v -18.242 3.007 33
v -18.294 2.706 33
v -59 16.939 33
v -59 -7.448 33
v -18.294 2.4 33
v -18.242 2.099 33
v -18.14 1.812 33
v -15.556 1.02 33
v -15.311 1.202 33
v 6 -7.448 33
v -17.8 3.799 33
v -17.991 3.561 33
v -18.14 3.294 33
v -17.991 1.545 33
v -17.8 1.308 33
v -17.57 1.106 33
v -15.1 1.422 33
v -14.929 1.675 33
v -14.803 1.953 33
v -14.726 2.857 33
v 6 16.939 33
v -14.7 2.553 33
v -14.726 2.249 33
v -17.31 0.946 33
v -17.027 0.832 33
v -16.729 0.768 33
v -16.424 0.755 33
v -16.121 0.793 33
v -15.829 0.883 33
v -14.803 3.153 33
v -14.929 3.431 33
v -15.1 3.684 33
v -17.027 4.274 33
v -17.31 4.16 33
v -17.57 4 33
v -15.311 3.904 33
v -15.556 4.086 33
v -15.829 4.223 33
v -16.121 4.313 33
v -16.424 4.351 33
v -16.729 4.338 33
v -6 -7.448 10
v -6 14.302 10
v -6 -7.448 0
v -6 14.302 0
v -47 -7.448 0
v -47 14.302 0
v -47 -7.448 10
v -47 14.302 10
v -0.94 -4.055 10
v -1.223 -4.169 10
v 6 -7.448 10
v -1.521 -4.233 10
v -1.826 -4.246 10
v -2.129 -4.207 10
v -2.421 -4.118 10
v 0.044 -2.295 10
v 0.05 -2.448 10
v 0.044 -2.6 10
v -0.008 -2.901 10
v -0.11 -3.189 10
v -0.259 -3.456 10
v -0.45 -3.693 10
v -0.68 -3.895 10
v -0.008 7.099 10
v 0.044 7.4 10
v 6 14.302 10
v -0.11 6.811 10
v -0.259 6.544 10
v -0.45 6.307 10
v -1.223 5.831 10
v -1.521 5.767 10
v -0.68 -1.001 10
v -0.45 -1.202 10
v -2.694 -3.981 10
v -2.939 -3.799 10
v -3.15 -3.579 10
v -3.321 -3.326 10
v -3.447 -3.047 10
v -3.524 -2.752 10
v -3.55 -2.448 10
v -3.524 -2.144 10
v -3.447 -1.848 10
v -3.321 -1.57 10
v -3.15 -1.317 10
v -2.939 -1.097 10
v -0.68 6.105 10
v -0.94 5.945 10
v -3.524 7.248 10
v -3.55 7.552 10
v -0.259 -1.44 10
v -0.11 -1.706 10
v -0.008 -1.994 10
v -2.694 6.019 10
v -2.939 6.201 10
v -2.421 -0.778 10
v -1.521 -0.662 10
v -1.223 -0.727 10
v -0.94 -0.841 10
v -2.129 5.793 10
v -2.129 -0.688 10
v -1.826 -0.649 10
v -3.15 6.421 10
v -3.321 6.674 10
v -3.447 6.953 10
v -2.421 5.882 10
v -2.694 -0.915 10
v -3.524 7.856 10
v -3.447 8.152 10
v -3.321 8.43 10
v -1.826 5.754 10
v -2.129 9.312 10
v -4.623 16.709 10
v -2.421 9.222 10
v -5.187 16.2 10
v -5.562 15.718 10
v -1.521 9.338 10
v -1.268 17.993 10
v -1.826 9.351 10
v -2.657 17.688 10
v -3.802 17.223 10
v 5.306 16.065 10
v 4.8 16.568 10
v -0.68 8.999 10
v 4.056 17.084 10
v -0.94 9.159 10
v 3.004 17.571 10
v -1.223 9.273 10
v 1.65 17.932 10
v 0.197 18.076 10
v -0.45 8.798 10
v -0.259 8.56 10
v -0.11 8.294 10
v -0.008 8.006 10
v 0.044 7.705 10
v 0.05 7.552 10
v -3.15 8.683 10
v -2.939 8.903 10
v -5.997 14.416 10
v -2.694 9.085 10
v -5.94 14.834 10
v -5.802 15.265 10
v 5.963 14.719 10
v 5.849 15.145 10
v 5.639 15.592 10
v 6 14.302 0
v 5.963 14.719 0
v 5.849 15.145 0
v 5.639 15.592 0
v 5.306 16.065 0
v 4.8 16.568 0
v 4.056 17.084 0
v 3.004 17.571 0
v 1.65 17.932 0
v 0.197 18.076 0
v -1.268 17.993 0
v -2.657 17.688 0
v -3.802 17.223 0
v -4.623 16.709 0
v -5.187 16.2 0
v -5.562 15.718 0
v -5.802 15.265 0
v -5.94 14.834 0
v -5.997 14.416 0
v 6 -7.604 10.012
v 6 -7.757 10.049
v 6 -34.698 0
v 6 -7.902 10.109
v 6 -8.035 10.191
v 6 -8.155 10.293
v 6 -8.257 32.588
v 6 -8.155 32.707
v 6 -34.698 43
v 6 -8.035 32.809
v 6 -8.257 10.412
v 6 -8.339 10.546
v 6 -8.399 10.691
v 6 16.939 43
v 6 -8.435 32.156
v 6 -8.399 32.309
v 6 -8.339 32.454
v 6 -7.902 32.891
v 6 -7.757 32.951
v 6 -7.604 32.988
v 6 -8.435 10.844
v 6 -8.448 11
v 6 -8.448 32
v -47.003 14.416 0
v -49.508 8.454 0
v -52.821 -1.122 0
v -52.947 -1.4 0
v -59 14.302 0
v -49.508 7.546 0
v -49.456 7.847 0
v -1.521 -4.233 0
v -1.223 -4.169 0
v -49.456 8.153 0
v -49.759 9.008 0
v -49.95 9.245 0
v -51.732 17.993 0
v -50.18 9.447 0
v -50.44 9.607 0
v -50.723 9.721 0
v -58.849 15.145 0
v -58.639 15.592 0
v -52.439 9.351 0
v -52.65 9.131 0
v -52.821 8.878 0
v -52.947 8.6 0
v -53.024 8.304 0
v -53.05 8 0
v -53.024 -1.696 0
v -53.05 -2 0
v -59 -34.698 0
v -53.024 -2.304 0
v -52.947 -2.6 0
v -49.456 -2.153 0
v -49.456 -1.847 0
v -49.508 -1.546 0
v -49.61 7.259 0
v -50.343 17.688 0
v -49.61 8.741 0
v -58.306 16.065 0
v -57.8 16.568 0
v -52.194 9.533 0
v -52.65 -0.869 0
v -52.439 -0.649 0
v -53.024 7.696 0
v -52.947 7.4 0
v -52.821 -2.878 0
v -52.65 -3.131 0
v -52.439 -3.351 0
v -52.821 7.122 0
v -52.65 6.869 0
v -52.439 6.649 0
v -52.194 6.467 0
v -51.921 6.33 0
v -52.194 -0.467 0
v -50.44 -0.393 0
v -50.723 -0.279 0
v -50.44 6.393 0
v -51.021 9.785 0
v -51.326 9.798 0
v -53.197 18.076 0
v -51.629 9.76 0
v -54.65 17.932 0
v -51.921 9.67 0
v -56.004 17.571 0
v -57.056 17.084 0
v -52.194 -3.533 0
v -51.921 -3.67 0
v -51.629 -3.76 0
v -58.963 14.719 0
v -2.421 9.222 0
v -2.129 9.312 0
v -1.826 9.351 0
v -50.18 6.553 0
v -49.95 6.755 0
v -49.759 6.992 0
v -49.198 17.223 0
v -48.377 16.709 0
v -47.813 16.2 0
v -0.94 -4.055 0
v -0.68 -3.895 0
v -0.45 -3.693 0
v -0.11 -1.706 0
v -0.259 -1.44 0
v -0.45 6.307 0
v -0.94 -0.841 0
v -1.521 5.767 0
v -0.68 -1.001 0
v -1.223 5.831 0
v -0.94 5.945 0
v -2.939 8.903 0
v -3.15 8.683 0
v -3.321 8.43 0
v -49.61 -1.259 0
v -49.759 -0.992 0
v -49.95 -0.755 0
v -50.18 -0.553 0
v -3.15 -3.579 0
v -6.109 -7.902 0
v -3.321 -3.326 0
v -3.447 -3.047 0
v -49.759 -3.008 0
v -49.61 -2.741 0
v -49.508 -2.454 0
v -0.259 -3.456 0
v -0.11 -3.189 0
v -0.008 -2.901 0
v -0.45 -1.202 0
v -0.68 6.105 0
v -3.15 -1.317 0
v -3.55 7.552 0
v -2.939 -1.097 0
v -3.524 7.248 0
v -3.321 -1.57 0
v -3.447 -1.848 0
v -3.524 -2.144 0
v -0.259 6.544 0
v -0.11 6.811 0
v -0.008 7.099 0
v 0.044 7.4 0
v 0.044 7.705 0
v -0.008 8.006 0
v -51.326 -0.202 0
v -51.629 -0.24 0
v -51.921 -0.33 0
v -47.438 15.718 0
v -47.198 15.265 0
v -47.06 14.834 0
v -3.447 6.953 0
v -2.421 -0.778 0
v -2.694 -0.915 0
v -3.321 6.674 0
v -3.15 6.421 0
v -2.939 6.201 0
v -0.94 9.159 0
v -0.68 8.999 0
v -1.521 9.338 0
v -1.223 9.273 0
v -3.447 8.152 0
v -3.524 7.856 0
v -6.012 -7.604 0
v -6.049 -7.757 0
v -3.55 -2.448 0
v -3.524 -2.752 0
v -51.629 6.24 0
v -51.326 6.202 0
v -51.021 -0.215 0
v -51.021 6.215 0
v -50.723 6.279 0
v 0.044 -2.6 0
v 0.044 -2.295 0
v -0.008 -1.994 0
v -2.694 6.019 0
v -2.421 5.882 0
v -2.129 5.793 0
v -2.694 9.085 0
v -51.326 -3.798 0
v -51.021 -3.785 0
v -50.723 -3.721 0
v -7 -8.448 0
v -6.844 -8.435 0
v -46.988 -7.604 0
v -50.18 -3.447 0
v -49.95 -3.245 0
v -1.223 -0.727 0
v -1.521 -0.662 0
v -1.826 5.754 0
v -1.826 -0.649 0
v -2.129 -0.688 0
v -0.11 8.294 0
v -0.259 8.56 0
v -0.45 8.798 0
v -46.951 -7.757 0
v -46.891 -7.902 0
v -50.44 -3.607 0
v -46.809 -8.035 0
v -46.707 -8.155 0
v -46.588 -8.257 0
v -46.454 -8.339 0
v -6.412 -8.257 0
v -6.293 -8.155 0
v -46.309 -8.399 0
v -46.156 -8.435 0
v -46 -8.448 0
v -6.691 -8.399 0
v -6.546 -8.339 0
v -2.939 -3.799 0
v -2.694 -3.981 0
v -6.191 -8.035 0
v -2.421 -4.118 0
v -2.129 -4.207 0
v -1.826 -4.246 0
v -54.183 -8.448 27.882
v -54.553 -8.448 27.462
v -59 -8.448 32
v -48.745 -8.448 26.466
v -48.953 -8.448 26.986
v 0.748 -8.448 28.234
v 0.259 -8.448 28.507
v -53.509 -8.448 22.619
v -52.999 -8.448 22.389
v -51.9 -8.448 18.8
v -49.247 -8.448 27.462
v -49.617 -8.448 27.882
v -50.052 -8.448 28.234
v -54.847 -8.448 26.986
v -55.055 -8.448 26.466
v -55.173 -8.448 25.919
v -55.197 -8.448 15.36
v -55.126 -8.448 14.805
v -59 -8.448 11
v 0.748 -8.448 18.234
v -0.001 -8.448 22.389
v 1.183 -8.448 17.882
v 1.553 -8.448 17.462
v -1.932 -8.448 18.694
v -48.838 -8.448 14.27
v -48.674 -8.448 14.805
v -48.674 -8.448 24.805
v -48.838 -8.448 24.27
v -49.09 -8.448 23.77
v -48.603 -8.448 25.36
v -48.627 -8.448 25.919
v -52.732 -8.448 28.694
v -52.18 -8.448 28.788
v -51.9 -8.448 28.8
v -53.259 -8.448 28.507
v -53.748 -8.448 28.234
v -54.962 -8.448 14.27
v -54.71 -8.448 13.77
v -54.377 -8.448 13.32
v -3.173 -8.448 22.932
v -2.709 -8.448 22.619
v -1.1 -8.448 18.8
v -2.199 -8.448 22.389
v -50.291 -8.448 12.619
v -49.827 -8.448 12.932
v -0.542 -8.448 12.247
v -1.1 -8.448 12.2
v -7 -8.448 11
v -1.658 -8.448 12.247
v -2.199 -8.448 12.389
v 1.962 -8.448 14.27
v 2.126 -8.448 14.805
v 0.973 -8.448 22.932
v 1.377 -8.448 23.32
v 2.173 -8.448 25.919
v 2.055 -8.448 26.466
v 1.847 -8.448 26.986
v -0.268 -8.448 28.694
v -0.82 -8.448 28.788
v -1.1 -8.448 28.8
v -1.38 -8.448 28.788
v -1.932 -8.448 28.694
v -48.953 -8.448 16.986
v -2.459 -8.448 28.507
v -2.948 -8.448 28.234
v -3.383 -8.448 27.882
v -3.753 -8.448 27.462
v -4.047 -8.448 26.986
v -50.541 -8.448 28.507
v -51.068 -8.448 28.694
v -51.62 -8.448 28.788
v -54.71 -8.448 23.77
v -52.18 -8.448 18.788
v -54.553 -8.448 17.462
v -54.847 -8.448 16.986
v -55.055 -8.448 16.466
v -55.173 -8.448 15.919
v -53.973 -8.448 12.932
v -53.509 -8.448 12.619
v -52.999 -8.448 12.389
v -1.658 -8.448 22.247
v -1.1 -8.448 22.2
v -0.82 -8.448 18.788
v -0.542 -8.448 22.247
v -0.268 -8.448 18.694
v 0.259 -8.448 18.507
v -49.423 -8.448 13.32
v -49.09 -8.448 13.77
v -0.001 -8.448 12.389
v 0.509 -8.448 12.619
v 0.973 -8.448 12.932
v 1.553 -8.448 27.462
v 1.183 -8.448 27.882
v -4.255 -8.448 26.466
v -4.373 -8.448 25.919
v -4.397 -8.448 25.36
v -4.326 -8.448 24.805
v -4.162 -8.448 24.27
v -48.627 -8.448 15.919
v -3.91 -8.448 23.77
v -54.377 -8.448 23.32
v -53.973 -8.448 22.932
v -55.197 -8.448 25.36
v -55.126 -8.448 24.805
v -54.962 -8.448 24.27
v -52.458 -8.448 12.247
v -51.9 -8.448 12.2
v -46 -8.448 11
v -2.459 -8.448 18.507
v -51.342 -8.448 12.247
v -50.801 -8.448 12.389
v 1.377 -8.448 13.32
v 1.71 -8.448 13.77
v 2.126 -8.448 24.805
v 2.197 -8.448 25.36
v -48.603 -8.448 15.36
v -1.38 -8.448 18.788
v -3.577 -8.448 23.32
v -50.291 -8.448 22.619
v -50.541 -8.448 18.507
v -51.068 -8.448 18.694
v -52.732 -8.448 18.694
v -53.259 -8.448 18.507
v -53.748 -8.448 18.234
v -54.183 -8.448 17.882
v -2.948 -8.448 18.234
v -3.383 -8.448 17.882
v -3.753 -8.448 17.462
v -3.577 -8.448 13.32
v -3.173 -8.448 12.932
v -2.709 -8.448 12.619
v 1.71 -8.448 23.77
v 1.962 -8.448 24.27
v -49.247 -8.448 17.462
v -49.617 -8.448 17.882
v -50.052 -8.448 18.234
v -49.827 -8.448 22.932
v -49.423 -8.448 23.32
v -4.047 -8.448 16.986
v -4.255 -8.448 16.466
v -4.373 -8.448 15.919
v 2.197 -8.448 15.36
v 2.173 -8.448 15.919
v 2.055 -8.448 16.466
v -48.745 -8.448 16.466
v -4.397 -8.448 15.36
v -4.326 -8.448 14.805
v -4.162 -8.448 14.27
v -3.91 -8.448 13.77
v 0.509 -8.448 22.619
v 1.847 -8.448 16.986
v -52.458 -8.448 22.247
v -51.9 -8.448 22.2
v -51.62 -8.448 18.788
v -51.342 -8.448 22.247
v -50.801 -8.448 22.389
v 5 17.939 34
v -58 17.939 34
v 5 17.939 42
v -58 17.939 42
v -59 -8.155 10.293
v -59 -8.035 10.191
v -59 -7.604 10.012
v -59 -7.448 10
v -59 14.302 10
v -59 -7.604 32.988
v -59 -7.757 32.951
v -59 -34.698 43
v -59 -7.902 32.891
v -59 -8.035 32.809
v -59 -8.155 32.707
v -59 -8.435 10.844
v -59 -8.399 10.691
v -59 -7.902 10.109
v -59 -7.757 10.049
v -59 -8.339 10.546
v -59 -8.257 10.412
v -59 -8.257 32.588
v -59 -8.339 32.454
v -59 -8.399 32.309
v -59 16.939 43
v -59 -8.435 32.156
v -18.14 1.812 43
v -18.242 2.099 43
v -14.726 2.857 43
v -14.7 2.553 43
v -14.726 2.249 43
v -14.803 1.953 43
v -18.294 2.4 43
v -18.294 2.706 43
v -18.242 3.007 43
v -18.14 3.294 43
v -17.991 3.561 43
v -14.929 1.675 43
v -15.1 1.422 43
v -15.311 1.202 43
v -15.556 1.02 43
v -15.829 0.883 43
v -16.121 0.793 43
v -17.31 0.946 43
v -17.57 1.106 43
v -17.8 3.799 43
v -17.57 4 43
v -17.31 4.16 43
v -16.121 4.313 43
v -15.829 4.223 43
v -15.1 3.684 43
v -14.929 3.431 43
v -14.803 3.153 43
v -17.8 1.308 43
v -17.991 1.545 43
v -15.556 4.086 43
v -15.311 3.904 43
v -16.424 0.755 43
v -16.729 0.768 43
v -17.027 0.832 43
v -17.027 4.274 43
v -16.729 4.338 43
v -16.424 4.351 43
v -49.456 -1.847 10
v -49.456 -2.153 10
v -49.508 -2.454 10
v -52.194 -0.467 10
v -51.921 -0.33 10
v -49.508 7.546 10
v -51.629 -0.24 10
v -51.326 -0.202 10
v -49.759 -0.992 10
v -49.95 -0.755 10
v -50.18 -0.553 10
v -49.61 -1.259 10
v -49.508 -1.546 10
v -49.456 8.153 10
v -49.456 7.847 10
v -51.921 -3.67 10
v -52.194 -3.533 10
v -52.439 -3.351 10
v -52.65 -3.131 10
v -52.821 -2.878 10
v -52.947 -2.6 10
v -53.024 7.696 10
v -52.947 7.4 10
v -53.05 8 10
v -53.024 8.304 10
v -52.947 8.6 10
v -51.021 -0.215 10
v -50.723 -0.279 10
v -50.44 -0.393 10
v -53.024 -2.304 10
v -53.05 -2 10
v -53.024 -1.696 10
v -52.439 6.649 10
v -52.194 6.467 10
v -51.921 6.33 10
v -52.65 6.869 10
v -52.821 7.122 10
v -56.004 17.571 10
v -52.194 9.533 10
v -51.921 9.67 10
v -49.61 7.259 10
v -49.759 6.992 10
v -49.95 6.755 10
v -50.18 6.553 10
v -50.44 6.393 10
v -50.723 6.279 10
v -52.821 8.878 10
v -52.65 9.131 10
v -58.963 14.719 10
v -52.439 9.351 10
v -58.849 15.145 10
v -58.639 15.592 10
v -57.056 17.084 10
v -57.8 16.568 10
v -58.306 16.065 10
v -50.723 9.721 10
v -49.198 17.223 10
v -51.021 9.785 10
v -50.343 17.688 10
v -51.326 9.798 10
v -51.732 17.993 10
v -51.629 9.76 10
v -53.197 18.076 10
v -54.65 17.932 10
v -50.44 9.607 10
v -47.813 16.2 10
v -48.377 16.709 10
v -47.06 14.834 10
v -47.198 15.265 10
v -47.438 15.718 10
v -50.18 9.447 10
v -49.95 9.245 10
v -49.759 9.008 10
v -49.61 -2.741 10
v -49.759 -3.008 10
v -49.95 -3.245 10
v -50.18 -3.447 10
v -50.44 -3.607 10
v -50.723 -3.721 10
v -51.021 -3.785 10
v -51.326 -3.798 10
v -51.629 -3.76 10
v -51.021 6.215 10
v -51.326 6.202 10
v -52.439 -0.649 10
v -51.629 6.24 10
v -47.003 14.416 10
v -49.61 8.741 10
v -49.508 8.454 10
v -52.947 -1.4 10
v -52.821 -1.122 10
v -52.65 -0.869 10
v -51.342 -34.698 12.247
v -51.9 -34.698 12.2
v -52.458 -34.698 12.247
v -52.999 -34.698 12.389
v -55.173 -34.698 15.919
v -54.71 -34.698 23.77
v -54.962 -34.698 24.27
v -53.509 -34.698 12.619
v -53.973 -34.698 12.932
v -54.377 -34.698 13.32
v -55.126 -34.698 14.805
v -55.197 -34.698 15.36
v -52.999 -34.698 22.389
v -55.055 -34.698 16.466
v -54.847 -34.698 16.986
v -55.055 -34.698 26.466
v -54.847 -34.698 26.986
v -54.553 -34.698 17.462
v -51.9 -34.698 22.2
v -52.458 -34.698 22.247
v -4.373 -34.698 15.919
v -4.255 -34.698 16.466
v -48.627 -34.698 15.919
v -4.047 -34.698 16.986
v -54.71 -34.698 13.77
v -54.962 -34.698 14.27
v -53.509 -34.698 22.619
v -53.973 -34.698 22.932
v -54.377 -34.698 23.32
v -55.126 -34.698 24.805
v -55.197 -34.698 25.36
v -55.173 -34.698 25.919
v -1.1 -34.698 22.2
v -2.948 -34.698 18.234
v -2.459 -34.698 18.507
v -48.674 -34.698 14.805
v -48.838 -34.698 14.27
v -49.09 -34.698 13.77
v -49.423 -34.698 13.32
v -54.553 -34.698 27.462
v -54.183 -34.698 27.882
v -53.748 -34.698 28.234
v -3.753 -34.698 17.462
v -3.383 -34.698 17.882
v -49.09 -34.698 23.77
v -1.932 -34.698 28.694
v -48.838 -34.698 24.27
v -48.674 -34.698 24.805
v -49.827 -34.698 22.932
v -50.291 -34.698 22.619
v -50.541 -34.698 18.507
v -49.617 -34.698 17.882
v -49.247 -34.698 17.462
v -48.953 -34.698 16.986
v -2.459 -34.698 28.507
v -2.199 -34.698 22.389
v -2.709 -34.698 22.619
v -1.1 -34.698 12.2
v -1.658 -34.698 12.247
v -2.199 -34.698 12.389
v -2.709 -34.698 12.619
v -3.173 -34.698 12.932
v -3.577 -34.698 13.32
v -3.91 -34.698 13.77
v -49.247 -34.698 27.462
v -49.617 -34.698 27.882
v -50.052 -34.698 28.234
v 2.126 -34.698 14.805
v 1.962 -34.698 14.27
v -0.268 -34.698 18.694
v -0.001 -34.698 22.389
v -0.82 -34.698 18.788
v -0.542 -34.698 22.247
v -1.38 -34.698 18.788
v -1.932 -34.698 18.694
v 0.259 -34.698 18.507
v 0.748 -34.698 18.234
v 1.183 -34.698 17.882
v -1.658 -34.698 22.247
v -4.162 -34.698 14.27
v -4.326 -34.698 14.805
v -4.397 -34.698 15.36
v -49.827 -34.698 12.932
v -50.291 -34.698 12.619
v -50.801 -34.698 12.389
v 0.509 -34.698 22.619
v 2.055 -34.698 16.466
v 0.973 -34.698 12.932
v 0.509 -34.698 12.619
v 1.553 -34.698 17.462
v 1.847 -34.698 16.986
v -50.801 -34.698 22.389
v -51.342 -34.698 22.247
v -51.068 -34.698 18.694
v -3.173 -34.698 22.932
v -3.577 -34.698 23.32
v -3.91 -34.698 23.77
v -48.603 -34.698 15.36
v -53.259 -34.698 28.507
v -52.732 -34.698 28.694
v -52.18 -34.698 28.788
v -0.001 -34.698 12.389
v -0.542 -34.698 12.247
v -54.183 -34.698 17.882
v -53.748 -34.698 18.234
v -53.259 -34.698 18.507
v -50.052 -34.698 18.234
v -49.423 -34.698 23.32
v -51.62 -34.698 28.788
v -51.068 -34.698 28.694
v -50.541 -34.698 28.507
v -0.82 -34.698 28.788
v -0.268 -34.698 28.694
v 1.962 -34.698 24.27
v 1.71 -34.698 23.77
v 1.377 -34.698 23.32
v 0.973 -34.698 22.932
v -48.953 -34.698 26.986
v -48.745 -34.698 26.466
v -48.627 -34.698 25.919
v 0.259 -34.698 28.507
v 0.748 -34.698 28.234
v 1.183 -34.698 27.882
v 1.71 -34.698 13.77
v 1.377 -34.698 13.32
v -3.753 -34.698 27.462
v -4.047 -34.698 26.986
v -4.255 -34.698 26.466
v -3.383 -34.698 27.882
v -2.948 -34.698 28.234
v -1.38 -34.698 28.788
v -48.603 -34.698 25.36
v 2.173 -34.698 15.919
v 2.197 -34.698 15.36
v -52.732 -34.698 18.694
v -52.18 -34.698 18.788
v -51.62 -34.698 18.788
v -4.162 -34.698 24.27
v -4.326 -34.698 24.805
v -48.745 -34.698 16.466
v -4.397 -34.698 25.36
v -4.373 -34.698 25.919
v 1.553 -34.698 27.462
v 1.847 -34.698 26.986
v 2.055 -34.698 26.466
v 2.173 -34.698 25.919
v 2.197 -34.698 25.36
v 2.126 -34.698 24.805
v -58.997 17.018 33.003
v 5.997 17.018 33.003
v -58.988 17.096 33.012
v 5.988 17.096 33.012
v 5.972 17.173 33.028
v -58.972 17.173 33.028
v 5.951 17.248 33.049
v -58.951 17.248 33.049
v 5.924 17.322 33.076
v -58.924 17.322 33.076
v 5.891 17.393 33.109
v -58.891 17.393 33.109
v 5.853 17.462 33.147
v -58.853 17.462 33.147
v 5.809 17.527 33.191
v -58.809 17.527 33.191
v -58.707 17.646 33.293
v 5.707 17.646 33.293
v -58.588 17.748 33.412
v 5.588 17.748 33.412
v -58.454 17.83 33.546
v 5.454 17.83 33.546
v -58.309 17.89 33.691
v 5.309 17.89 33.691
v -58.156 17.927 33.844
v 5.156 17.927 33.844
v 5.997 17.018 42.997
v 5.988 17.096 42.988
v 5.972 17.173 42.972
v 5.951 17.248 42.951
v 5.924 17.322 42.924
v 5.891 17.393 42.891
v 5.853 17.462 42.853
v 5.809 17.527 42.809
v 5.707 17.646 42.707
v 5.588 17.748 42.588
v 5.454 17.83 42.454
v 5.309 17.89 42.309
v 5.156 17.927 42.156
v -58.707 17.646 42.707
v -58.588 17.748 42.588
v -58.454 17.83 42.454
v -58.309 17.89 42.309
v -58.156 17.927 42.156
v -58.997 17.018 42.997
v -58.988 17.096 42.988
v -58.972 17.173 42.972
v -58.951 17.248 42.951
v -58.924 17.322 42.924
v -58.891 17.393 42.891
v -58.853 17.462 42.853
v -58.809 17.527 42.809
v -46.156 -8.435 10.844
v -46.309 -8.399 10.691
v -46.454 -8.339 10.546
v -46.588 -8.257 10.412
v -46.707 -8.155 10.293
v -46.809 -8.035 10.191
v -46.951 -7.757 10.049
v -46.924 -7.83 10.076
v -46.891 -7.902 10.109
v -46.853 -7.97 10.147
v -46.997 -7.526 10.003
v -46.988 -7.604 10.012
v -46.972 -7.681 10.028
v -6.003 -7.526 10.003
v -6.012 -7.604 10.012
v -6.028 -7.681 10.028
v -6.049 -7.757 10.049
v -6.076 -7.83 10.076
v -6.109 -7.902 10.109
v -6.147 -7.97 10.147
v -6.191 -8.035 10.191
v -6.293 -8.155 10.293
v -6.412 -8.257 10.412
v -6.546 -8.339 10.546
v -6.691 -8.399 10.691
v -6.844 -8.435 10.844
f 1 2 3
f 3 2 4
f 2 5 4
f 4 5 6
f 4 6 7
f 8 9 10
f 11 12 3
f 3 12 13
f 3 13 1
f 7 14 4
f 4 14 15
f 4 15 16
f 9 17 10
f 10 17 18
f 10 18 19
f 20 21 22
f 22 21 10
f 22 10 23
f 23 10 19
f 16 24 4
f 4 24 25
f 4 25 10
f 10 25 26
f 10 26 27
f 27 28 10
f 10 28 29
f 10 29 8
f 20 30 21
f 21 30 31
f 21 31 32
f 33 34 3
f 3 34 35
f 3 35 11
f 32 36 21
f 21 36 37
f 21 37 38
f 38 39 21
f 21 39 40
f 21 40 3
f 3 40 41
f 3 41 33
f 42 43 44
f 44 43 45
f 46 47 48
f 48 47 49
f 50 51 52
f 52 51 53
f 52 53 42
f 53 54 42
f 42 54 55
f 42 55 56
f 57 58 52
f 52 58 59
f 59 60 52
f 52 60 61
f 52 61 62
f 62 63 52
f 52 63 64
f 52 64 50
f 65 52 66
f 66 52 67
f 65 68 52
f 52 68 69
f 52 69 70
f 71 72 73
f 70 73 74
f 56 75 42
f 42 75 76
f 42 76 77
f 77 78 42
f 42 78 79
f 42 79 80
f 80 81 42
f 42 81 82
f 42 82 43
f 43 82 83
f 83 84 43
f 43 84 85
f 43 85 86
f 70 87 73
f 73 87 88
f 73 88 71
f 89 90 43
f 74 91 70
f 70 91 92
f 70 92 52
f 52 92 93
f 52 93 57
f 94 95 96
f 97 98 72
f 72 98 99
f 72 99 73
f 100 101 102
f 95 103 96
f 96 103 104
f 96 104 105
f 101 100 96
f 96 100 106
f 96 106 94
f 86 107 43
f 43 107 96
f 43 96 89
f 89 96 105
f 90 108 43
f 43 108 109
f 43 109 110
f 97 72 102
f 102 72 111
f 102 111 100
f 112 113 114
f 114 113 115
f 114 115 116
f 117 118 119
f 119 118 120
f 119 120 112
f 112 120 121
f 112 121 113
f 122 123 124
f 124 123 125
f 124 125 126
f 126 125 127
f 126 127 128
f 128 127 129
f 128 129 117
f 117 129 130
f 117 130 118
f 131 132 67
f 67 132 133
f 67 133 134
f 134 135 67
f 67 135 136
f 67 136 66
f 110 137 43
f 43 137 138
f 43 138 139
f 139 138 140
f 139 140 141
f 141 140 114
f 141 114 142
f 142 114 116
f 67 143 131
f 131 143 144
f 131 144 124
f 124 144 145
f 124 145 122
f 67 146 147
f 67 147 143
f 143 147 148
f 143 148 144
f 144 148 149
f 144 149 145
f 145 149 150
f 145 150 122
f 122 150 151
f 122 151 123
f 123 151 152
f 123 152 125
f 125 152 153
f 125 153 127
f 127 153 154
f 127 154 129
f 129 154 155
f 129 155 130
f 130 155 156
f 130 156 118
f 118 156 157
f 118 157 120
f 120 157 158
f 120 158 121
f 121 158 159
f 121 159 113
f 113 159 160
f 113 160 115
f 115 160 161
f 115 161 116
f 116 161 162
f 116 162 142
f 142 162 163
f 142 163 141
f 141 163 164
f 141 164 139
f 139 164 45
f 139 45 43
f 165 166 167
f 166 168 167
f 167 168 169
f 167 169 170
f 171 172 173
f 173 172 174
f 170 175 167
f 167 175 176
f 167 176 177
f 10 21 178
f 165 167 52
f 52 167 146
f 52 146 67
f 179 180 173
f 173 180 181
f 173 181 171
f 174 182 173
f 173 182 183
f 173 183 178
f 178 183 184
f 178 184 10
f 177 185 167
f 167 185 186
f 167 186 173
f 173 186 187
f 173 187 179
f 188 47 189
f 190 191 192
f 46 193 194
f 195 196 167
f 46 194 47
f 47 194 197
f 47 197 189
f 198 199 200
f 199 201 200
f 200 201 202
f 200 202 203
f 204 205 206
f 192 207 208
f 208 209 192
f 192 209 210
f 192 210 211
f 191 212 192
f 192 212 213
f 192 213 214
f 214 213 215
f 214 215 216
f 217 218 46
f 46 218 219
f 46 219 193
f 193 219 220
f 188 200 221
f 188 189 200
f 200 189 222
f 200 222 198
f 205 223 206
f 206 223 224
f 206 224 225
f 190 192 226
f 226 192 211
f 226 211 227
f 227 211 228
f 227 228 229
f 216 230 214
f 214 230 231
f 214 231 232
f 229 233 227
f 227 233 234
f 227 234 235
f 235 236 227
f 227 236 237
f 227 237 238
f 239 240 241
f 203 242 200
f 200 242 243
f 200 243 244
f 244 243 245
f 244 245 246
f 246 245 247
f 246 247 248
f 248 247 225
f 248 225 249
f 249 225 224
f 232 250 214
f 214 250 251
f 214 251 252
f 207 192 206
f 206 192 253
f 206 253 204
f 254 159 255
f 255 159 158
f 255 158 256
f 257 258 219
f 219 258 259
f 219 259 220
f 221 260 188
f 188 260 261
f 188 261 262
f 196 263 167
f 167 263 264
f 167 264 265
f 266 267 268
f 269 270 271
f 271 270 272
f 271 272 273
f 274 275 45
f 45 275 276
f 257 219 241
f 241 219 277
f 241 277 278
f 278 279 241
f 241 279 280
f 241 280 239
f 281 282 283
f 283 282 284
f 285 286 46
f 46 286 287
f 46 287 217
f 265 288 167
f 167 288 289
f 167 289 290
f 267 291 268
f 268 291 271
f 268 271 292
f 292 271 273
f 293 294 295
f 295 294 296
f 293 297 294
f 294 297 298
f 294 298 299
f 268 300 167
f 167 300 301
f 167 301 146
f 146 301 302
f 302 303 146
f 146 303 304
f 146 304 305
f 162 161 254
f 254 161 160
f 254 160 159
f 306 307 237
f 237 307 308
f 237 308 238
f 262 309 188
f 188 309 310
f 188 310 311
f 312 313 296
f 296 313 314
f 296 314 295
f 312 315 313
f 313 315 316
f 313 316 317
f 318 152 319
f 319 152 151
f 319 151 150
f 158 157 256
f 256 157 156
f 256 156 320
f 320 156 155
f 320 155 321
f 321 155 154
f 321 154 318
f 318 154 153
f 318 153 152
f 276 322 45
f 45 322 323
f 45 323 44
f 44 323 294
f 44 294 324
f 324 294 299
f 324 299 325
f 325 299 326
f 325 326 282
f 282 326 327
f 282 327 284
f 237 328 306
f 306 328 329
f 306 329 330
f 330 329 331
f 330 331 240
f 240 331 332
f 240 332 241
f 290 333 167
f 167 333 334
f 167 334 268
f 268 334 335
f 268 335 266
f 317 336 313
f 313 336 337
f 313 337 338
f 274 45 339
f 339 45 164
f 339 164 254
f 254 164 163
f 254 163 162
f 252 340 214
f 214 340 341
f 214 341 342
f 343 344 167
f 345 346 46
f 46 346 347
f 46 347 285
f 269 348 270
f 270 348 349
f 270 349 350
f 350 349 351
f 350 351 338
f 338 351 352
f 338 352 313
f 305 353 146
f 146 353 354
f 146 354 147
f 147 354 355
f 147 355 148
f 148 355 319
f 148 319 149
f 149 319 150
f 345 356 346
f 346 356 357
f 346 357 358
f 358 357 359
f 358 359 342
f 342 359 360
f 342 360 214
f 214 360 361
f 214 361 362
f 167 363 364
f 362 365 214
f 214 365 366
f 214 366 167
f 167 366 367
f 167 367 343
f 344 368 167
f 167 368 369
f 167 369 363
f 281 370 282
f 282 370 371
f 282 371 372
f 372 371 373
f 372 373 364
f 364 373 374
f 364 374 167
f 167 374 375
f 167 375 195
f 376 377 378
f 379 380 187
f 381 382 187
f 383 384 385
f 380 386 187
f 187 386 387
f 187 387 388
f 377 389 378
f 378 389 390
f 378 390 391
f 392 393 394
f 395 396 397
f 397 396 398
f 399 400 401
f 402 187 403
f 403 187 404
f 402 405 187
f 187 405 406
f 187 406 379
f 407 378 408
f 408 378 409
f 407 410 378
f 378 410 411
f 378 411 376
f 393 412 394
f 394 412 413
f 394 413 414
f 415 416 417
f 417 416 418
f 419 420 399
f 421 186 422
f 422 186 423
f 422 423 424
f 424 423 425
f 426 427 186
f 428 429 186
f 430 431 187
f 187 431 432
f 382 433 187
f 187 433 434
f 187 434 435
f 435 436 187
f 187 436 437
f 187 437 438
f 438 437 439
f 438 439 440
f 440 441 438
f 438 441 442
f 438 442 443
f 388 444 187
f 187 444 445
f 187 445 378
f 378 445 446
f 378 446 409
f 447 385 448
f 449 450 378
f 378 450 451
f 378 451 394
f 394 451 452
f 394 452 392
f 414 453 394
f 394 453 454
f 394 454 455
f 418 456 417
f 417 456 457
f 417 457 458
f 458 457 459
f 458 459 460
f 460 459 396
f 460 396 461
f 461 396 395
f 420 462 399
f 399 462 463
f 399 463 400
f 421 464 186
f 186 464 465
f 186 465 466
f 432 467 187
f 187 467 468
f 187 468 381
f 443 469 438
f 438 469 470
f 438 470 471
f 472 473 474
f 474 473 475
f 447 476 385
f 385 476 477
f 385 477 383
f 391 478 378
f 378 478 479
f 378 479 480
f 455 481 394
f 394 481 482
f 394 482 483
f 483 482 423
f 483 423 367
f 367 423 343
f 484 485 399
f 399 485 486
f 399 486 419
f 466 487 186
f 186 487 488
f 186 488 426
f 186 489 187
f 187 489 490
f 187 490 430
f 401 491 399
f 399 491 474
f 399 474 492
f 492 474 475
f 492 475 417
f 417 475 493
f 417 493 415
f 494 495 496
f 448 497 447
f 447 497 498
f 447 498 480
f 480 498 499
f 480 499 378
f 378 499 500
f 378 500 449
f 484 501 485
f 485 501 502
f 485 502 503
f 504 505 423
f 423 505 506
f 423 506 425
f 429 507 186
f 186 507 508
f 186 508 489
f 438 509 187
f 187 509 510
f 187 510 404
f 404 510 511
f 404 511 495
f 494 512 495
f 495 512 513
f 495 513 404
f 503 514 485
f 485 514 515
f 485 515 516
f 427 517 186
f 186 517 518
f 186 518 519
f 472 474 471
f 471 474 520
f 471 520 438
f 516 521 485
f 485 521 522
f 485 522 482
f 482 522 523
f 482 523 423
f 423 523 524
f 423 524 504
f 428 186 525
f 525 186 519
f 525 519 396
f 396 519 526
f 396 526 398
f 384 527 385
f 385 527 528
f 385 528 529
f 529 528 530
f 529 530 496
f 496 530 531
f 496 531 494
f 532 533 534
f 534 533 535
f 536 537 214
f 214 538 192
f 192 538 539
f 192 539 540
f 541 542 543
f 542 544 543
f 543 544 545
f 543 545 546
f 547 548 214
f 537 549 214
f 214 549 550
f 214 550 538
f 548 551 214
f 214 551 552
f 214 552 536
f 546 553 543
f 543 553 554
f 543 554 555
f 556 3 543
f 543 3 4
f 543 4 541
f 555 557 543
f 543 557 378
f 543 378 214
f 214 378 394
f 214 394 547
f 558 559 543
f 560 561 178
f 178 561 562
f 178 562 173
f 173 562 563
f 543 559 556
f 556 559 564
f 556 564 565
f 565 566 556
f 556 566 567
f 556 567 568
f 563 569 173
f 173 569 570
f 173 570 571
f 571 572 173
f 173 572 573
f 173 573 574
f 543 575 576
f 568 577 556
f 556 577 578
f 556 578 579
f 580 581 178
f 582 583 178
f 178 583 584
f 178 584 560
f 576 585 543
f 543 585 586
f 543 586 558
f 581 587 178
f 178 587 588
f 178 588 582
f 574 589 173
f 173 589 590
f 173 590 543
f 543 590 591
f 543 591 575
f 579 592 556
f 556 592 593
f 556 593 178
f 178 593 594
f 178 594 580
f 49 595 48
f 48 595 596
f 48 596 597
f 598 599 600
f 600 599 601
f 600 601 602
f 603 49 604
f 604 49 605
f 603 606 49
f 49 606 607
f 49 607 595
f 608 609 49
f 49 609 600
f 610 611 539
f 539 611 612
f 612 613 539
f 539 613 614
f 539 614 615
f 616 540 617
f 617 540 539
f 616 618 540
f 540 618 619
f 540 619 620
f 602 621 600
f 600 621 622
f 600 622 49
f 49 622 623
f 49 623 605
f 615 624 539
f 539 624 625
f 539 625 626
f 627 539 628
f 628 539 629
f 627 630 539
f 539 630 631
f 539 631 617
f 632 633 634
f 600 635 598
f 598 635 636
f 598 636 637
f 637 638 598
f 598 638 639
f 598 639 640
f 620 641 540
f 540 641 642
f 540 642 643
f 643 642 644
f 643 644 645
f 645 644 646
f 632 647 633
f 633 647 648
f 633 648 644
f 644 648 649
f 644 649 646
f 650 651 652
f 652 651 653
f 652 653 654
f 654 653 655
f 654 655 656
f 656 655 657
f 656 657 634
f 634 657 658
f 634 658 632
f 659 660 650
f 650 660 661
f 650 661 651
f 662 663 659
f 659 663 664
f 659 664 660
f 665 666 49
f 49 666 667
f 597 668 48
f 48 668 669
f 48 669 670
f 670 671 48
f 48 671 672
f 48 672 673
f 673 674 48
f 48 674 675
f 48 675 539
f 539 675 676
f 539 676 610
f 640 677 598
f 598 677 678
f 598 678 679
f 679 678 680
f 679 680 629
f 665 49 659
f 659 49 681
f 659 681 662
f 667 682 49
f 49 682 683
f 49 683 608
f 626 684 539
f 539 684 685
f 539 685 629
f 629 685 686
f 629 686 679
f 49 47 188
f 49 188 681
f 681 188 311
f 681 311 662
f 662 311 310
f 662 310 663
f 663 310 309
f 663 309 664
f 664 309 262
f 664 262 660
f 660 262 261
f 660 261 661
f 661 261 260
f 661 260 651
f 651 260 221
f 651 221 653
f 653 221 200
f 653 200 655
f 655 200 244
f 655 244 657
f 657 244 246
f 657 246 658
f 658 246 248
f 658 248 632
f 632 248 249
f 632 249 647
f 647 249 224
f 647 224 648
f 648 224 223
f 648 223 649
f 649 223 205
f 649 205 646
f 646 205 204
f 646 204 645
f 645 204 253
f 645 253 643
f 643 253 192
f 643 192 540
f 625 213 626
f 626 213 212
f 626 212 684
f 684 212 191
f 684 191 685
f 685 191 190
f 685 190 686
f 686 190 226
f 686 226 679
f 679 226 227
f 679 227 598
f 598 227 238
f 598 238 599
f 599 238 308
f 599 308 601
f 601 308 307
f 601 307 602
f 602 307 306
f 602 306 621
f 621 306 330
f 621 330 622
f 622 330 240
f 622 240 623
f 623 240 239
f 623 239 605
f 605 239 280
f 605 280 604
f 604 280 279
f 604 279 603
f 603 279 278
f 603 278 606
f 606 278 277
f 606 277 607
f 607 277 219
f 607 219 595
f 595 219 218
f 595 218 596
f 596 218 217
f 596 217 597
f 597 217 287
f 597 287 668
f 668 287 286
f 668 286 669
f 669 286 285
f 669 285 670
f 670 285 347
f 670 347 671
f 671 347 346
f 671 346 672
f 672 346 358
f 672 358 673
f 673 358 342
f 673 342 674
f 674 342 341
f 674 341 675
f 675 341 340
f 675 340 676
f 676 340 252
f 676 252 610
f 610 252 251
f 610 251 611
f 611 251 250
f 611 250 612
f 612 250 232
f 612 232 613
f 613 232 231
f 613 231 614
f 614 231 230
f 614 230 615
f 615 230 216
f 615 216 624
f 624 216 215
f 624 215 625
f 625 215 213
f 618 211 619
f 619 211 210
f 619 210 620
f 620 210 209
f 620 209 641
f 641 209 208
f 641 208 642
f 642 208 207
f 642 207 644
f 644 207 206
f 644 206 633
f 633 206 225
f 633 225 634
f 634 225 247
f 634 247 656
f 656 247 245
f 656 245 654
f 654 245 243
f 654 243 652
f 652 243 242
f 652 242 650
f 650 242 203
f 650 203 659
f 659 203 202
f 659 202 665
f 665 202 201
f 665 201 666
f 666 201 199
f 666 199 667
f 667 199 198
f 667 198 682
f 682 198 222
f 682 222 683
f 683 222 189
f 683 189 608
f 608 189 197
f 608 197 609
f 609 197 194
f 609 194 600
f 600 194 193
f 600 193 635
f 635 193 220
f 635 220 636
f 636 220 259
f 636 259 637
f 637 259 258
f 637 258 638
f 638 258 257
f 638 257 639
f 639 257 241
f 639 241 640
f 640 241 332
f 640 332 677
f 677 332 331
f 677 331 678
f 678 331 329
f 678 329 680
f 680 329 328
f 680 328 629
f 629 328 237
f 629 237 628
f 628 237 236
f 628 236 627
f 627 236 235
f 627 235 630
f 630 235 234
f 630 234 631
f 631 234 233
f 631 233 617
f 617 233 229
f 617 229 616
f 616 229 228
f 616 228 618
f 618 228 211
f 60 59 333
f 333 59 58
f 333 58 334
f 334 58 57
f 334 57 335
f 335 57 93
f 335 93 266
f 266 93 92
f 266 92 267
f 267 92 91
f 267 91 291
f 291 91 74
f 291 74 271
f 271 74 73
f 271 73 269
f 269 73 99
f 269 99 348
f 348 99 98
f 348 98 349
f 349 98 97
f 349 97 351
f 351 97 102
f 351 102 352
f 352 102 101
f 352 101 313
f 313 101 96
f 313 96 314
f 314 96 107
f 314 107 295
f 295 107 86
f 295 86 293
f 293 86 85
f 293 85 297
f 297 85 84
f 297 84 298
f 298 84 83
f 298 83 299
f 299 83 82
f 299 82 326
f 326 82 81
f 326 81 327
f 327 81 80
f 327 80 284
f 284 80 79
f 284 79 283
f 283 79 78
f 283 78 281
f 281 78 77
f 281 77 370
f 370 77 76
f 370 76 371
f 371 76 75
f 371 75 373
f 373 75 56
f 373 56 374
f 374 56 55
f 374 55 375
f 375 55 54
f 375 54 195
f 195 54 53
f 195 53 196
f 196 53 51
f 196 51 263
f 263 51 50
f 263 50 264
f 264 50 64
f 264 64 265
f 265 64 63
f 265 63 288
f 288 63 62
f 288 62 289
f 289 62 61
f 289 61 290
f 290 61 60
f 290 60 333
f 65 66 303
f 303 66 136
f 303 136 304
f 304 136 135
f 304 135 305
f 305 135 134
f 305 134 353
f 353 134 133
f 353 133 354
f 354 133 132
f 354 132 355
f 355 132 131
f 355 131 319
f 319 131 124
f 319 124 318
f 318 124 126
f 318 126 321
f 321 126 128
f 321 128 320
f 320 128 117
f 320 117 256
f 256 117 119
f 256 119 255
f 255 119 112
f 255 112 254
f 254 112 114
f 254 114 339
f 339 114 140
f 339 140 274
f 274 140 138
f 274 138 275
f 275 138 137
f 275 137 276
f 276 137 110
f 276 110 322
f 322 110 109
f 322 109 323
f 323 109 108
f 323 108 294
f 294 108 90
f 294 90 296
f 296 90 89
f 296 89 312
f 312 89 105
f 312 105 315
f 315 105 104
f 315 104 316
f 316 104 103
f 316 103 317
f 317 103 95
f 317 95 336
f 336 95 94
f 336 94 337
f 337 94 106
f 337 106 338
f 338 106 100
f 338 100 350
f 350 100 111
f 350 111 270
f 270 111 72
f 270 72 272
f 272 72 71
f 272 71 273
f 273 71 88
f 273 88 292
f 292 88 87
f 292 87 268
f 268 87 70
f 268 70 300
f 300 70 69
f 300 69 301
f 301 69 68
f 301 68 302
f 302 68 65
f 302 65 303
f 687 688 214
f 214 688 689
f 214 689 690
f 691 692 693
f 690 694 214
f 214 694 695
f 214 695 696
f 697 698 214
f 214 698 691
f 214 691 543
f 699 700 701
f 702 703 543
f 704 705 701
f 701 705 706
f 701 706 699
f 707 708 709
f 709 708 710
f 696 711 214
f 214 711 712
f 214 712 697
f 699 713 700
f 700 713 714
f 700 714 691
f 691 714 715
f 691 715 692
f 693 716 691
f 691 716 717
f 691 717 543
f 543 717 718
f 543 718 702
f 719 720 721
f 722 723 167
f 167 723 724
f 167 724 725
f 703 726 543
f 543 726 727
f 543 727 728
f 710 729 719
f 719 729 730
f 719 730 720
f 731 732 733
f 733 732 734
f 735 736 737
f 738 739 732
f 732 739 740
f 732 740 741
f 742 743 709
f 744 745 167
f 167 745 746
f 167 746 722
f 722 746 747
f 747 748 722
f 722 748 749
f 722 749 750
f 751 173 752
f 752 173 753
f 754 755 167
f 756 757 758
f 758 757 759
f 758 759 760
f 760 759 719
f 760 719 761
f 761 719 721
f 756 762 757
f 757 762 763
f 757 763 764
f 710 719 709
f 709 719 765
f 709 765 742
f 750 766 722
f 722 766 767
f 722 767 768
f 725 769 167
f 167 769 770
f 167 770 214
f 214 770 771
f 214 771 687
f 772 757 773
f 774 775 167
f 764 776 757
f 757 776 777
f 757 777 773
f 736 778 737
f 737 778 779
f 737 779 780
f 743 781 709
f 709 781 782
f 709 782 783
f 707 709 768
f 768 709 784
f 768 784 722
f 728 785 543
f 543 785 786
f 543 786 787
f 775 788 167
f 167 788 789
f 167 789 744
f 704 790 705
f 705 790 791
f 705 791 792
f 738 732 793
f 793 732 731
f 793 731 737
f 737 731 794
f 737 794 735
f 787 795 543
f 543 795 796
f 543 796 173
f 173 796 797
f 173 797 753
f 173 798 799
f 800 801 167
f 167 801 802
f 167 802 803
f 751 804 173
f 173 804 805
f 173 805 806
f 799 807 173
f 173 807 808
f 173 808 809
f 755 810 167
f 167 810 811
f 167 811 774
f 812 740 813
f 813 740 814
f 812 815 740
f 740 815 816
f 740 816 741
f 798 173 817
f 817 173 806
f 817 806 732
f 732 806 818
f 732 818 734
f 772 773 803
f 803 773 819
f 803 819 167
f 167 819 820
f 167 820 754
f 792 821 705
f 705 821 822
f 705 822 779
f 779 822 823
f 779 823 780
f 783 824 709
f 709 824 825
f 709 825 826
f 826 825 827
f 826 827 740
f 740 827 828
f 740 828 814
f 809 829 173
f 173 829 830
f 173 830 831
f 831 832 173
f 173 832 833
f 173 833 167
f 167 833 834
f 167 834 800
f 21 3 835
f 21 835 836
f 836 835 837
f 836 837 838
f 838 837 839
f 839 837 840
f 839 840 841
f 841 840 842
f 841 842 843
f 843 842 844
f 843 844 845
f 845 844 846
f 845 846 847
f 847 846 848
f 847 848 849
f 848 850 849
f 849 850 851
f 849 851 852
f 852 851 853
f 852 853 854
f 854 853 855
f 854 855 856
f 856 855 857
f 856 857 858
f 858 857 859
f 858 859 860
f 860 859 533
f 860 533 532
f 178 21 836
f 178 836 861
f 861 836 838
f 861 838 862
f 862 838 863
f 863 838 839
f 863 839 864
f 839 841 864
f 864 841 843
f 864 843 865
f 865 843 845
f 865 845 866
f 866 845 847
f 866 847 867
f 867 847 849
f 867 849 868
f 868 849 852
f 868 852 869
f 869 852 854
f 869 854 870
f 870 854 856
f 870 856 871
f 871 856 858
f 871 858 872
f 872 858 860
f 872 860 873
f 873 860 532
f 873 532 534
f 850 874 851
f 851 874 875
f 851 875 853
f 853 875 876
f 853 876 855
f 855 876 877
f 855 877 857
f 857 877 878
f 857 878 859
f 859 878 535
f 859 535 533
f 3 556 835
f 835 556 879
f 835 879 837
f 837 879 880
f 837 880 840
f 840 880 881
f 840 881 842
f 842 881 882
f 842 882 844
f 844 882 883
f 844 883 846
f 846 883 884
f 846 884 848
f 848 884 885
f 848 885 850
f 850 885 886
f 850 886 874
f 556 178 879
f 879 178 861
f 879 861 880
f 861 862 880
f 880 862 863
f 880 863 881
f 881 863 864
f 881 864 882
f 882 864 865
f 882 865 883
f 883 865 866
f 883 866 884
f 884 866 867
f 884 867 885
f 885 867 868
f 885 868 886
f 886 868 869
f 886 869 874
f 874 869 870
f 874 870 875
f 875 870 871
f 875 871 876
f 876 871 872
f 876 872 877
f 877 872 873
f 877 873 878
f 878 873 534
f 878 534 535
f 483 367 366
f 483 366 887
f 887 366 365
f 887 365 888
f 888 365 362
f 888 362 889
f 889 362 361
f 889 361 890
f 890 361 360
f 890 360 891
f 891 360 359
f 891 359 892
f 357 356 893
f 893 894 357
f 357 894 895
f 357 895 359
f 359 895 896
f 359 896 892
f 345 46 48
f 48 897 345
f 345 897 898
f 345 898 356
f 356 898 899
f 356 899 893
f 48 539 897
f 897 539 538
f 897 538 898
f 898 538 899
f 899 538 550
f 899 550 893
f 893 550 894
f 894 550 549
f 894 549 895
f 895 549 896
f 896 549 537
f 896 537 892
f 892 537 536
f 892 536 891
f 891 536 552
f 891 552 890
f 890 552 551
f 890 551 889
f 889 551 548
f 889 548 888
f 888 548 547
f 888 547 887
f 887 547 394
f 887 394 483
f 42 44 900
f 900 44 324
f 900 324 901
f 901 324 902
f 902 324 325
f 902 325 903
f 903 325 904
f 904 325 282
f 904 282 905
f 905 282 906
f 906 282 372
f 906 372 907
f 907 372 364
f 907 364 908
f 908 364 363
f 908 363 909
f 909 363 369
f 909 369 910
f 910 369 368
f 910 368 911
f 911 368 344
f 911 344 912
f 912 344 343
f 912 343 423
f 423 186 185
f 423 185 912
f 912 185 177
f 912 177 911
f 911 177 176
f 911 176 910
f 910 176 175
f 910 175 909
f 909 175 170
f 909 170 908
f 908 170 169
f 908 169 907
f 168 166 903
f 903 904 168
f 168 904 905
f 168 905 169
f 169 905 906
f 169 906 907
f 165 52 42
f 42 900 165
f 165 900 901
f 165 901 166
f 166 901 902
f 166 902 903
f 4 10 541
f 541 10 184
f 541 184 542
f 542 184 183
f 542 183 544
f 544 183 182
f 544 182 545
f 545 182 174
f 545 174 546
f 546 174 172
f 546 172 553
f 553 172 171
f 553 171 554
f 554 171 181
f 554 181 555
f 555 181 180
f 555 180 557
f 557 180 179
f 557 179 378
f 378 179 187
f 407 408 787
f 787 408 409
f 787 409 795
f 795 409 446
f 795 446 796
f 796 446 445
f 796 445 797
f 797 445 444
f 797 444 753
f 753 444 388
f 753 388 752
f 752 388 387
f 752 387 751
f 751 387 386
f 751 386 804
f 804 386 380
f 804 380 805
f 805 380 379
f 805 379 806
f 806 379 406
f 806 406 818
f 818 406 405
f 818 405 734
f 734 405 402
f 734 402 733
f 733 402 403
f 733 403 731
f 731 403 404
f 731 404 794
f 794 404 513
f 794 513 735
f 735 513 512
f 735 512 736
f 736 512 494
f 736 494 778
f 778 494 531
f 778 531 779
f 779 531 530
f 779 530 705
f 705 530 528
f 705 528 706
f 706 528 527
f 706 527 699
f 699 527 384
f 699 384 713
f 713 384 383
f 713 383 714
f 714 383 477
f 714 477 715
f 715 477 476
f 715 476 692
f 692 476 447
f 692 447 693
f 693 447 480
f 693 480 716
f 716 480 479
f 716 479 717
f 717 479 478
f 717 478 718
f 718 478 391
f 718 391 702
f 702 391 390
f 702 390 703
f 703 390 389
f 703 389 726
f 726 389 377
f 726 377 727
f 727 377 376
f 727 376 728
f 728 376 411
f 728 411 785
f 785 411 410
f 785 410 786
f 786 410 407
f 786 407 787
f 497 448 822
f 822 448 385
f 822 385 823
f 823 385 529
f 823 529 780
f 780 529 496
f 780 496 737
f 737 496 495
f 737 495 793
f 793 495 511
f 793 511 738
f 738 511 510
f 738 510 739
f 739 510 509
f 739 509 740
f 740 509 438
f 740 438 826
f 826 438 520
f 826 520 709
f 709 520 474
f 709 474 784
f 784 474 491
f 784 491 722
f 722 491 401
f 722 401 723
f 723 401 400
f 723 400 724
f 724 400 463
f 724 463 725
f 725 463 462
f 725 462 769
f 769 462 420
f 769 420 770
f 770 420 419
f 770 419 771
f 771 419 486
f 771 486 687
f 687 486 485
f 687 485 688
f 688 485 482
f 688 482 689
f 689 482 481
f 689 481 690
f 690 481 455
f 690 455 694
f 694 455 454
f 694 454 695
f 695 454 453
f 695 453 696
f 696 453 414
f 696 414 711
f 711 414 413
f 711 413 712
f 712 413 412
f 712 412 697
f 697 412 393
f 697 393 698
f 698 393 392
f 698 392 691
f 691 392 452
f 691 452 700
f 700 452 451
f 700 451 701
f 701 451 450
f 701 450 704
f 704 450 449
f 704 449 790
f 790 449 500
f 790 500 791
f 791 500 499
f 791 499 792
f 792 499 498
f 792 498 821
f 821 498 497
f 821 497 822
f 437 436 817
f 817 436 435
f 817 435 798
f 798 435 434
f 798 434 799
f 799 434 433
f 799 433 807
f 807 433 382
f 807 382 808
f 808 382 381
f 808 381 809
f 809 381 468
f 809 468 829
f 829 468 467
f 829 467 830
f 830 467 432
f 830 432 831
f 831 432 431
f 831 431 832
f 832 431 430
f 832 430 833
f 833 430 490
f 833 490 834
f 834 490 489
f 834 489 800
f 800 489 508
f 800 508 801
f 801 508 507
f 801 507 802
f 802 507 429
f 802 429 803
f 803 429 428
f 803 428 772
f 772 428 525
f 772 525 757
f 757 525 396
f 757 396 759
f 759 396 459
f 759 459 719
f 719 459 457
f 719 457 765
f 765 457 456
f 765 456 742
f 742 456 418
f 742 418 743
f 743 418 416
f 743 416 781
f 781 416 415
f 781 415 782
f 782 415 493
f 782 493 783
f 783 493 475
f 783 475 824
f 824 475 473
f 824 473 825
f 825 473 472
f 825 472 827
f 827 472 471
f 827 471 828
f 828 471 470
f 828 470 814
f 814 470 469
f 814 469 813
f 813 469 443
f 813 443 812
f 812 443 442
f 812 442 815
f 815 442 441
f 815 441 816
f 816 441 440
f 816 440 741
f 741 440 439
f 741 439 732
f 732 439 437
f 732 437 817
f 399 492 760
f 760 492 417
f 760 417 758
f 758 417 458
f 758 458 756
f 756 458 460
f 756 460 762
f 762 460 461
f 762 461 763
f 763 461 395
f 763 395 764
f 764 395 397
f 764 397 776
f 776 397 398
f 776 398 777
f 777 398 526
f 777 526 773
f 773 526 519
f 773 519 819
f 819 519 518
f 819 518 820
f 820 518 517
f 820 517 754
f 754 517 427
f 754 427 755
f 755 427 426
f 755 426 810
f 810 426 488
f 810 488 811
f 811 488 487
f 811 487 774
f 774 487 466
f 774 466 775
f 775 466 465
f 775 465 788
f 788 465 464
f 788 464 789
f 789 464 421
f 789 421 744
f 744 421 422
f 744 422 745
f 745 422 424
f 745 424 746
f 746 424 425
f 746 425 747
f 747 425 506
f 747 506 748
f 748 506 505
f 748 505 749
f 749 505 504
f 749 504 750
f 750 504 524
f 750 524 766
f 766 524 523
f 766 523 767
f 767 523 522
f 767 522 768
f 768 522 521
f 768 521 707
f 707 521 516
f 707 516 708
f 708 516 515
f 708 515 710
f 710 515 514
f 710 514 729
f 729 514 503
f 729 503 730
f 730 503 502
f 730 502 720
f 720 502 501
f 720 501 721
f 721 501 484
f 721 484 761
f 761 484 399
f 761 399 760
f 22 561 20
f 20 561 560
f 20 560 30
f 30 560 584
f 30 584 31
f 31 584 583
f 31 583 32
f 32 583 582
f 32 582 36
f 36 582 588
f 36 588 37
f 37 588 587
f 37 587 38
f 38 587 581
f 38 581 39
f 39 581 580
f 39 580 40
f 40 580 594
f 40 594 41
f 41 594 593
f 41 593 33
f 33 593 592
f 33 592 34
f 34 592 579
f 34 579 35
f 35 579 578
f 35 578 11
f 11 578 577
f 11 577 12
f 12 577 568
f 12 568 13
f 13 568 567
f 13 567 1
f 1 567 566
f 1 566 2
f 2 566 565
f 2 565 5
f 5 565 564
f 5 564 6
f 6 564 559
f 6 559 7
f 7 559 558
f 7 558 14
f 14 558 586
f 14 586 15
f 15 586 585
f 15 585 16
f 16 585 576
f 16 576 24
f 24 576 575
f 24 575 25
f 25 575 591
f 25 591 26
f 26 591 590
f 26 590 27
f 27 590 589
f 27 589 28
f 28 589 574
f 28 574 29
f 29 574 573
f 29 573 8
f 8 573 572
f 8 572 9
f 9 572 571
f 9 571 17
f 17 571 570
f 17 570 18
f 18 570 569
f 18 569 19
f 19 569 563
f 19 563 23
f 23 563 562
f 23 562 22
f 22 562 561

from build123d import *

# Parameters (mm, degrees)
BOSS_EXTRUDE1_DEPTH            = 10
SKETCH2_W                      = 12
SKETCH2_H                      = 12.25
BOSS_EXTRUDE2_DEPTH            = 23
SKETCH4_W                      = 65
SKETCH4_H                      = 38.636969104
BOSS_EXTRUDE3_DEPTH            = 10
F_3_6_3_6_DIAMETER_HOLE1_D     = 3.6
F_3_6_3_6_DIAMETER_HOLE1_DEPTH = 10
F_3_6_3_6_DIAMETER_HOLE1_TIP   = 1.081549114
SKETCH21_W                     = 41
SKETCH21_H                     = 12.25
BOSS_EXTRUDE4_DEPTH            = 33
SKETCH23_W                     = 65
SKETCH23_H                     = 43
BOSS_EXTRUDE6_DEPTH            = 14
FILLET1_R                      = 1
F_6_6_6_6_DIAMETER_HOLE1_D     = 6.6
SKETCH28_R                     = 1.8
CUT_EXTRUDE1_DEPTH             = 44.0000001


with BuildPart() as part:
    # Sketch1 → Boss-Extrude1 (new body)
    with BuildSketch(Plane.XY):
        with BuildLine():
            Line((-6, 14.302325581), (-6, -20.697674419))
            Line((-6, -20.697674419), (6, -20.697674419))
            Line((6, -20.697674419), (6, 14.302325581))
            add(Edge.make_bspline(
                [(6, 14.302325581), (6, 18.078005618), (0, 18.078005618), (-6, 18.078005618), (-6, 14.302325581)],
                knots=[0, 0, 0, 1.570796327, 1.570796327, 3.141592654, 3.141592654, 3.141592654], degree=2, weights=[1, 0.707106781, 1, 0.707106781, 1]))
        make_face()
    boss_extrude1 = extrude(amount=BOSS_EXTRUDE1_DEPTH)

    # Sketch2 → Boss-Extrude2 (add)
    with BuildSketch(Plane.XY.offset(10)):
        with Locations((0, -14.572674419)):
            Rectangle(SKETCH2_W, SKETCH2_H)
    boss_extrude2 = extrude(amount=BOSS_EXTRUDE2_DEPTH)

    # Sketch4 → Boss-Extrude3 (add)
    with BuildSketch(Plane.XY.offset(33)):
        with Locations((-26.5, -1.379189867)):
            Rectangle(SKETCH4_W, SKETCH4_H)
    extrude(amount=BOSS_EXTRUDE3_DEPTH)

    # Mirror2: Boss-Extrude2 across plane
    add(boss_extrude2.mirror(Plane.ZY.offset(26.5)))

    # Mirror3: Boss-Extrude1 across plane
    add(boss_extrude1.mirror(Plane.ZY.offset(26.5)))

    # Ø3.6 (3.6) Diameter Hole1
    with Locations(Plane(origin=(0, 0, 0), x_dir=(-1, 0, 0), z_dir=(0, 0, -1))):
        with Locations((1.75, 7.55218084), (1.75, -2.44781916), (51.25, 8), (51.25, -2)):
            Hole(F_3_6_3_6_DIAMETER_HOLE1_D / 2, depth=F_3_6_3_6_DIAMETER_HOLE1_DEPTH)
            with Locations((0, 0, -(F_3_6_3_6_DIAMETER_HOLE1_DEPTH + F_3_6_3_6_DIAMETER_HOLE1_TIP / 2))):  # 118° drill point
                Cone(0, F_3_6_3_6_DIAMETER_HOLE1_D / 2, F_3_6_3_6_DIAMETER_HOLE1_TIP, mode=Mode.SUBTRACT)

    # Sketch21 → Boss-Extrude4 (add)
    with BuildSketch(Plane(origin=(0, 0, 33), x_dir=(-1, 0, 0), z_dir=(0, 0, -1))):
        with Locations((26.5, -14.572674419)):
            Rectangle(SKETCH21_W, SKETCH21_H)
    extrude(amount=BOSS_EXTRUDE4_DEPTH)

    # Sketch23 → Boss-Extrude6 (add)
    with BuildSketch(Plane.XZ.offset(20.697674419)):
        with Locations((-26.5, 21.5)):
            Rectangle(SKETCH23_W, SKETCH23_H)
    extrude(amount=BOSS_EXTRUDE6_DEPTH)

    # Fillet1
    fillet1_edges = [part.edges().sort_by_distance(p)[0] for p in [
        (-26.5, -8.447674419, 33),
        (0, -8.447674419, 10),
        (-26.5, 17.939294685, 33),
        (6, 17.939294685, 38),
        (-59, 17.939294685, 38),
        (-26.5, 17.939294685, 43),
        (-53, -8.447674419, 10),
        (-47, -8.447674419, 5),
        (-6, -8.447674419, 5),
    ]]
    fillet(fillet1_edges, radius=FILLET1_R)

    # Ø6.6 (6.6) Diameter Hole1 (through all)
    with Locations(Plane(origin=(0, -34.697674419, 0), x_dir=(-1, 0, 0), z_dir=(0, -1, 0))):
        with Locations((1.1, -15.5), (1.1, -25.5), (51.9, -15.5), (51.9, -25.5)):
            Hole(F_6_6_6_6_DIAMETER_HOLE1_D / 2)

    # Sketch28 → Cut-Extrude1 (cut, through all)
    with BuildSketch(Plane.XY.offset(43)):
        with Locations((-16.5, 2.553012267)):
            Circle(SKETCH28_R)
    extrude(amount=-CUT_EXTRUDE1_DEPTH, mode=Mode.SUBTRACT)


solid = part.part
